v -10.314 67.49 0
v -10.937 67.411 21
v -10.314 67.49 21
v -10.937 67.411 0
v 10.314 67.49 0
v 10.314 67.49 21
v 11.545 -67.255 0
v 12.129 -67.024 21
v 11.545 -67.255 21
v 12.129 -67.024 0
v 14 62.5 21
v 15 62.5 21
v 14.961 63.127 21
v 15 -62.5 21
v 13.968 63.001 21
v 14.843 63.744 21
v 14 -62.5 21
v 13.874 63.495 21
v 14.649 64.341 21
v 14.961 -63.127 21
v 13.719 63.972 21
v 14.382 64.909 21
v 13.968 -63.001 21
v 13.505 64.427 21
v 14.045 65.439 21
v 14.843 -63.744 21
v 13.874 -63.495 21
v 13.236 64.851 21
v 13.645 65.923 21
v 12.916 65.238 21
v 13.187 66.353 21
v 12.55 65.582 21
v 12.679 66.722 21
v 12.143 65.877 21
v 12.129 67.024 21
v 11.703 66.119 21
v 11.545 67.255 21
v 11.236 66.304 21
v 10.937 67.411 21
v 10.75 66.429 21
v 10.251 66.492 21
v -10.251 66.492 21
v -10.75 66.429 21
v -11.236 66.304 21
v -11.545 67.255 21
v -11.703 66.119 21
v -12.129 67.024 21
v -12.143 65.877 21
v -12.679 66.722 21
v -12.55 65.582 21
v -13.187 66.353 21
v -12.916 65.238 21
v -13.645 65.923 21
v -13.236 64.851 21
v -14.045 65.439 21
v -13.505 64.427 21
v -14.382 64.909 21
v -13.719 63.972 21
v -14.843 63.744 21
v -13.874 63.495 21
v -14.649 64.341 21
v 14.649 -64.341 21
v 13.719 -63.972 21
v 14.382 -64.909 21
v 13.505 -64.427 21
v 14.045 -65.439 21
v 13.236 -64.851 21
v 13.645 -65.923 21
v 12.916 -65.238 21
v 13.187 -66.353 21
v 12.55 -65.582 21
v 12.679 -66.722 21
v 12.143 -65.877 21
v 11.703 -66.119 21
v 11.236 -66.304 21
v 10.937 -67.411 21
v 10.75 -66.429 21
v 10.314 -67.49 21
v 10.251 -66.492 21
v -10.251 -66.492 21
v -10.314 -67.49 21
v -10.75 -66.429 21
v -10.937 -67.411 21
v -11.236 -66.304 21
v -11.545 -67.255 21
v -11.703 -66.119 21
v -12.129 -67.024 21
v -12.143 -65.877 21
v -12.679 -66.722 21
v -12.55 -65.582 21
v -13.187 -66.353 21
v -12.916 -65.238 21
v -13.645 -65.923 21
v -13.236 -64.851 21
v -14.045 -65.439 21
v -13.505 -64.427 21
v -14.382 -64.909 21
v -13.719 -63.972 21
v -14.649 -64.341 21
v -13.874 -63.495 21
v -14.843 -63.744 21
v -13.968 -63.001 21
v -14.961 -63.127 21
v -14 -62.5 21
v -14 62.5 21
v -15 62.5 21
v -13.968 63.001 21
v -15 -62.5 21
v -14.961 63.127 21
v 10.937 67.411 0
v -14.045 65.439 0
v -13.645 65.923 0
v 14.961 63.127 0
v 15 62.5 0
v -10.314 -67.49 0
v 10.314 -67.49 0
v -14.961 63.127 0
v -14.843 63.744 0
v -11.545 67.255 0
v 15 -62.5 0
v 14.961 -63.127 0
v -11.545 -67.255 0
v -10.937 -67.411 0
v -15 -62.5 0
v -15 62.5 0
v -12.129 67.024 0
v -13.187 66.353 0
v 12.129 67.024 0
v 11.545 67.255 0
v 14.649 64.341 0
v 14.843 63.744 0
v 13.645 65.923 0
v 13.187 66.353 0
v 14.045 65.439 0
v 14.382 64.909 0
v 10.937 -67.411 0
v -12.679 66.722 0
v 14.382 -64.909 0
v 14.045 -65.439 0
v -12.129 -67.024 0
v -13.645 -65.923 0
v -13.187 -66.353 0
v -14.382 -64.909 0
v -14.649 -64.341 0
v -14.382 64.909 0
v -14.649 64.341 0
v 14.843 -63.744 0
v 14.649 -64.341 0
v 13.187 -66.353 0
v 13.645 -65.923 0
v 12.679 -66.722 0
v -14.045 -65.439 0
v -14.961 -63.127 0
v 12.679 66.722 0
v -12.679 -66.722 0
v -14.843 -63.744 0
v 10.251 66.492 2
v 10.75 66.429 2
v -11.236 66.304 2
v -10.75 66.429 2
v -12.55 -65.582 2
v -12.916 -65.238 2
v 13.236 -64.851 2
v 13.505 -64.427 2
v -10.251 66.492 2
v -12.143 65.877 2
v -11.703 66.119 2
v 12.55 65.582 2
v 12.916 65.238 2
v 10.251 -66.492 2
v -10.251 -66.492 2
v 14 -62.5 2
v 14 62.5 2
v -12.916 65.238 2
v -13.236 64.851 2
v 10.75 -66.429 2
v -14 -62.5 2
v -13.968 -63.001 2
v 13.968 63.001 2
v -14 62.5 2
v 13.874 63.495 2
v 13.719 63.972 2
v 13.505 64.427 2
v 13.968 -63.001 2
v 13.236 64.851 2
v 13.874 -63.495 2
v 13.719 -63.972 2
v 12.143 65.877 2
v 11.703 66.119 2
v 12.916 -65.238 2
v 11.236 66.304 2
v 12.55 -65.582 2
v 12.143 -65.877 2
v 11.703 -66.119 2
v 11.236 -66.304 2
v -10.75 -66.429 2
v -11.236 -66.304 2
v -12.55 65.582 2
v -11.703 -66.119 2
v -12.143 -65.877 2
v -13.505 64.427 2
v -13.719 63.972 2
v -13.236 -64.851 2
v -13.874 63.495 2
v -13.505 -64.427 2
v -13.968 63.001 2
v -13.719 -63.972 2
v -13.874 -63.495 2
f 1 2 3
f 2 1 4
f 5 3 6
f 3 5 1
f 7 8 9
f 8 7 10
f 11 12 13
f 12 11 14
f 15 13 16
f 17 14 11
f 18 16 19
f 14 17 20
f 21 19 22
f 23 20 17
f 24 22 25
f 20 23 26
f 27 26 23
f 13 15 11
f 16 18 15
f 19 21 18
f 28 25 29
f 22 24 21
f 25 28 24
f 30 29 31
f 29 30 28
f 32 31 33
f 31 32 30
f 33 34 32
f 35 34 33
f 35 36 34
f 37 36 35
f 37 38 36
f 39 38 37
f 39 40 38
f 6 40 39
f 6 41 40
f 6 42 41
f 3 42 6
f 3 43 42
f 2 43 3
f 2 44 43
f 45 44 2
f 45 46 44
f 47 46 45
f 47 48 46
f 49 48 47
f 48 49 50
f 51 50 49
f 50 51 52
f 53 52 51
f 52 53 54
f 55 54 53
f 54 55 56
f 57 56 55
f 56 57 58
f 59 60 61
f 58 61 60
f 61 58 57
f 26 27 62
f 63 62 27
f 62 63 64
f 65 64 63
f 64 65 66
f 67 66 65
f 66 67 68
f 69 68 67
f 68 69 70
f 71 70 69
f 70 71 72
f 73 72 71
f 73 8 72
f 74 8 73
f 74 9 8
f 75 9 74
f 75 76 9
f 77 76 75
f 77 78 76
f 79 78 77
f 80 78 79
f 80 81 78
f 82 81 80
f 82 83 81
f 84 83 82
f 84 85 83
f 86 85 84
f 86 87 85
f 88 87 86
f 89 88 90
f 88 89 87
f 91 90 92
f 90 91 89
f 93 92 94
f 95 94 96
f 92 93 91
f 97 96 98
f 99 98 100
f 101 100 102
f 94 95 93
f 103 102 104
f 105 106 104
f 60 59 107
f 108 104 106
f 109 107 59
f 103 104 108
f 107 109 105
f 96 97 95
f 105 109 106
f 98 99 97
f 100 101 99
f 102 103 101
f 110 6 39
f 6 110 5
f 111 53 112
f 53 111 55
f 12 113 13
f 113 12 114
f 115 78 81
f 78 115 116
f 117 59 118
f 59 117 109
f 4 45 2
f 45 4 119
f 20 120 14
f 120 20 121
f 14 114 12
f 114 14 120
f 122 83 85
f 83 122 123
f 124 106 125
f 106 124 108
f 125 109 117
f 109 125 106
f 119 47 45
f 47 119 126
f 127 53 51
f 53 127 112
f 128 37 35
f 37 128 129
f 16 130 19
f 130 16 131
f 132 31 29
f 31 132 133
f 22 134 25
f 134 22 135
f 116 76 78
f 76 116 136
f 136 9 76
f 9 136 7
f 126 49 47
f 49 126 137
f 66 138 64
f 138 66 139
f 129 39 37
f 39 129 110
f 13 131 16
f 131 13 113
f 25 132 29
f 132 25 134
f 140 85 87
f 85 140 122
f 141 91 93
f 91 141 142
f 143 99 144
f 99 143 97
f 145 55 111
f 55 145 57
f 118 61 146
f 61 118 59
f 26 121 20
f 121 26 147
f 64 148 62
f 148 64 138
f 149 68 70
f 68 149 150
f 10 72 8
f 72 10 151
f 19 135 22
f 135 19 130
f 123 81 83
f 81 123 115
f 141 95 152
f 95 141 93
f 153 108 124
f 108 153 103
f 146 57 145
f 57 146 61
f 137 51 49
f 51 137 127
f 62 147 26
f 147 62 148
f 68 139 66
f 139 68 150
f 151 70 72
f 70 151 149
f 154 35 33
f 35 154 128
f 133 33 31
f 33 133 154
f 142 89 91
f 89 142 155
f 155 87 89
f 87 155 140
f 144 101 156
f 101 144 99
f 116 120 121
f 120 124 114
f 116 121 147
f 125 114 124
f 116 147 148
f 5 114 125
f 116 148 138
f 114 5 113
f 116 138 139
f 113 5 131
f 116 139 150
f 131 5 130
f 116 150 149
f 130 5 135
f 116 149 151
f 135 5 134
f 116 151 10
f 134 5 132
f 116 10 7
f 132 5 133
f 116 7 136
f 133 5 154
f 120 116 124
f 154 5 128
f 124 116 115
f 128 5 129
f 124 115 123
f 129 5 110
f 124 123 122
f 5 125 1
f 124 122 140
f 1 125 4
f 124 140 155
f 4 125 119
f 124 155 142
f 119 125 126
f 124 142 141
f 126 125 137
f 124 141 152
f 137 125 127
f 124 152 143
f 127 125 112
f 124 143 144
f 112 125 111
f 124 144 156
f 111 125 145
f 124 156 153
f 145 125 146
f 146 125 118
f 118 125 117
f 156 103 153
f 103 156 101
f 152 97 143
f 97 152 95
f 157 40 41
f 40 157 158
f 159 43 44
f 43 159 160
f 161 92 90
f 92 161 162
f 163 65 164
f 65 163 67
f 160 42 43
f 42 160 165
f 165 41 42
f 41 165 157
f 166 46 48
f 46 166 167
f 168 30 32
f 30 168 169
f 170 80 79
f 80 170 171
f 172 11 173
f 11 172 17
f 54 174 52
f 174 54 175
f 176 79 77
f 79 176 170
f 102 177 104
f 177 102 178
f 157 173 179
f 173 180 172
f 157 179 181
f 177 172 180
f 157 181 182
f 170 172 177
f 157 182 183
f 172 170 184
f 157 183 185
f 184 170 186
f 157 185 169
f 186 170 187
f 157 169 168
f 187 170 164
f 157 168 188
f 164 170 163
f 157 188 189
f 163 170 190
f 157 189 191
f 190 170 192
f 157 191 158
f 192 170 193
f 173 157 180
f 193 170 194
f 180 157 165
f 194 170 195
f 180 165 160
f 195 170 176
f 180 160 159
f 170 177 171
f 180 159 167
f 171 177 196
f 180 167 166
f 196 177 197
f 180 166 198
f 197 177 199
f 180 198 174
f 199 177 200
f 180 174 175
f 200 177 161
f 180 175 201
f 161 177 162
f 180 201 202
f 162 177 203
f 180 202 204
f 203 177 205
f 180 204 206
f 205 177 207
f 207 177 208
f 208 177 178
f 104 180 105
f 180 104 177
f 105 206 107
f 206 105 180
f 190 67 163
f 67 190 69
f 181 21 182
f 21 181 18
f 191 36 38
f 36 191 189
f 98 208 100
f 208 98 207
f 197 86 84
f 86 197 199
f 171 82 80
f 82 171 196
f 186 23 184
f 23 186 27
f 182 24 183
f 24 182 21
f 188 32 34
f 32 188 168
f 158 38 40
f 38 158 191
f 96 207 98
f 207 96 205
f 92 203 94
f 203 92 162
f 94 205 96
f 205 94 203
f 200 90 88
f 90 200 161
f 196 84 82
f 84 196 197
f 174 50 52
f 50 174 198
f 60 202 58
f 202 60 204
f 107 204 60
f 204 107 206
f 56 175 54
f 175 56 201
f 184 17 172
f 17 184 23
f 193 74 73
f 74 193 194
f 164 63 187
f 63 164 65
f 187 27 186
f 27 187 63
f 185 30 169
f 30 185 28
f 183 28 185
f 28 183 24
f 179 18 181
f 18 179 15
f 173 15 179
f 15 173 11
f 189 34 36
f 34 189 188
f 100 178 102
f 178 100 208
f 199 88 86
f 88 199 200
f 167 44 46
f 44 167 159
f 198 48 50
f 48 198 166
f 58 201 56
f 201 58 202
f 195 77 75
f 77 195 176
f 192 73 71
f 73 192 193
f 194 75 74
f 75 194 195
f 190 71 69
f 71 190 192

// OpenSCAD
$fn = 50;


difference() {
	union() {
		hull() {
			translate(v = [-10.0000000000, 62.5000000000, 0]) {
				cylinder(h = 21, r = 5);
			}
			translate(v = [10.0000000000, 62.5000000000, 0]) {
				cylinder(h = 21, r = 5);
			}
			translate(v = [-10.0000000000, -62.5000000000, 0]) {
				cylinder(h = 21, r = 5);
			}
			translate(v = [10.0000000000, -62.5000000000, 0]) {
				cylinder(h = 21, r = 5);
			}
		}
	}
	union() {
		translate(v = [0, 0, 2]) {
			hull() {
				translate(v = [-10.0000000000, 62.5000000000, 0]) {
					cylinder(h = 19, r = 4);
				}
				translate(v = [10.0000000000, 62.5000000000, 0]) {
					cylinder(h = 19, r = 4);
				}
				translate(v = [-10.0000000000, -62.5000000000, 0]) {
					cylinder(h = 19, r = 4);
				}
				translate(v = [10.0000000000, -62.5000000000, 0]) {
					cylinder(h = 19, r = 4);
				}
			}
		}
	}
}
